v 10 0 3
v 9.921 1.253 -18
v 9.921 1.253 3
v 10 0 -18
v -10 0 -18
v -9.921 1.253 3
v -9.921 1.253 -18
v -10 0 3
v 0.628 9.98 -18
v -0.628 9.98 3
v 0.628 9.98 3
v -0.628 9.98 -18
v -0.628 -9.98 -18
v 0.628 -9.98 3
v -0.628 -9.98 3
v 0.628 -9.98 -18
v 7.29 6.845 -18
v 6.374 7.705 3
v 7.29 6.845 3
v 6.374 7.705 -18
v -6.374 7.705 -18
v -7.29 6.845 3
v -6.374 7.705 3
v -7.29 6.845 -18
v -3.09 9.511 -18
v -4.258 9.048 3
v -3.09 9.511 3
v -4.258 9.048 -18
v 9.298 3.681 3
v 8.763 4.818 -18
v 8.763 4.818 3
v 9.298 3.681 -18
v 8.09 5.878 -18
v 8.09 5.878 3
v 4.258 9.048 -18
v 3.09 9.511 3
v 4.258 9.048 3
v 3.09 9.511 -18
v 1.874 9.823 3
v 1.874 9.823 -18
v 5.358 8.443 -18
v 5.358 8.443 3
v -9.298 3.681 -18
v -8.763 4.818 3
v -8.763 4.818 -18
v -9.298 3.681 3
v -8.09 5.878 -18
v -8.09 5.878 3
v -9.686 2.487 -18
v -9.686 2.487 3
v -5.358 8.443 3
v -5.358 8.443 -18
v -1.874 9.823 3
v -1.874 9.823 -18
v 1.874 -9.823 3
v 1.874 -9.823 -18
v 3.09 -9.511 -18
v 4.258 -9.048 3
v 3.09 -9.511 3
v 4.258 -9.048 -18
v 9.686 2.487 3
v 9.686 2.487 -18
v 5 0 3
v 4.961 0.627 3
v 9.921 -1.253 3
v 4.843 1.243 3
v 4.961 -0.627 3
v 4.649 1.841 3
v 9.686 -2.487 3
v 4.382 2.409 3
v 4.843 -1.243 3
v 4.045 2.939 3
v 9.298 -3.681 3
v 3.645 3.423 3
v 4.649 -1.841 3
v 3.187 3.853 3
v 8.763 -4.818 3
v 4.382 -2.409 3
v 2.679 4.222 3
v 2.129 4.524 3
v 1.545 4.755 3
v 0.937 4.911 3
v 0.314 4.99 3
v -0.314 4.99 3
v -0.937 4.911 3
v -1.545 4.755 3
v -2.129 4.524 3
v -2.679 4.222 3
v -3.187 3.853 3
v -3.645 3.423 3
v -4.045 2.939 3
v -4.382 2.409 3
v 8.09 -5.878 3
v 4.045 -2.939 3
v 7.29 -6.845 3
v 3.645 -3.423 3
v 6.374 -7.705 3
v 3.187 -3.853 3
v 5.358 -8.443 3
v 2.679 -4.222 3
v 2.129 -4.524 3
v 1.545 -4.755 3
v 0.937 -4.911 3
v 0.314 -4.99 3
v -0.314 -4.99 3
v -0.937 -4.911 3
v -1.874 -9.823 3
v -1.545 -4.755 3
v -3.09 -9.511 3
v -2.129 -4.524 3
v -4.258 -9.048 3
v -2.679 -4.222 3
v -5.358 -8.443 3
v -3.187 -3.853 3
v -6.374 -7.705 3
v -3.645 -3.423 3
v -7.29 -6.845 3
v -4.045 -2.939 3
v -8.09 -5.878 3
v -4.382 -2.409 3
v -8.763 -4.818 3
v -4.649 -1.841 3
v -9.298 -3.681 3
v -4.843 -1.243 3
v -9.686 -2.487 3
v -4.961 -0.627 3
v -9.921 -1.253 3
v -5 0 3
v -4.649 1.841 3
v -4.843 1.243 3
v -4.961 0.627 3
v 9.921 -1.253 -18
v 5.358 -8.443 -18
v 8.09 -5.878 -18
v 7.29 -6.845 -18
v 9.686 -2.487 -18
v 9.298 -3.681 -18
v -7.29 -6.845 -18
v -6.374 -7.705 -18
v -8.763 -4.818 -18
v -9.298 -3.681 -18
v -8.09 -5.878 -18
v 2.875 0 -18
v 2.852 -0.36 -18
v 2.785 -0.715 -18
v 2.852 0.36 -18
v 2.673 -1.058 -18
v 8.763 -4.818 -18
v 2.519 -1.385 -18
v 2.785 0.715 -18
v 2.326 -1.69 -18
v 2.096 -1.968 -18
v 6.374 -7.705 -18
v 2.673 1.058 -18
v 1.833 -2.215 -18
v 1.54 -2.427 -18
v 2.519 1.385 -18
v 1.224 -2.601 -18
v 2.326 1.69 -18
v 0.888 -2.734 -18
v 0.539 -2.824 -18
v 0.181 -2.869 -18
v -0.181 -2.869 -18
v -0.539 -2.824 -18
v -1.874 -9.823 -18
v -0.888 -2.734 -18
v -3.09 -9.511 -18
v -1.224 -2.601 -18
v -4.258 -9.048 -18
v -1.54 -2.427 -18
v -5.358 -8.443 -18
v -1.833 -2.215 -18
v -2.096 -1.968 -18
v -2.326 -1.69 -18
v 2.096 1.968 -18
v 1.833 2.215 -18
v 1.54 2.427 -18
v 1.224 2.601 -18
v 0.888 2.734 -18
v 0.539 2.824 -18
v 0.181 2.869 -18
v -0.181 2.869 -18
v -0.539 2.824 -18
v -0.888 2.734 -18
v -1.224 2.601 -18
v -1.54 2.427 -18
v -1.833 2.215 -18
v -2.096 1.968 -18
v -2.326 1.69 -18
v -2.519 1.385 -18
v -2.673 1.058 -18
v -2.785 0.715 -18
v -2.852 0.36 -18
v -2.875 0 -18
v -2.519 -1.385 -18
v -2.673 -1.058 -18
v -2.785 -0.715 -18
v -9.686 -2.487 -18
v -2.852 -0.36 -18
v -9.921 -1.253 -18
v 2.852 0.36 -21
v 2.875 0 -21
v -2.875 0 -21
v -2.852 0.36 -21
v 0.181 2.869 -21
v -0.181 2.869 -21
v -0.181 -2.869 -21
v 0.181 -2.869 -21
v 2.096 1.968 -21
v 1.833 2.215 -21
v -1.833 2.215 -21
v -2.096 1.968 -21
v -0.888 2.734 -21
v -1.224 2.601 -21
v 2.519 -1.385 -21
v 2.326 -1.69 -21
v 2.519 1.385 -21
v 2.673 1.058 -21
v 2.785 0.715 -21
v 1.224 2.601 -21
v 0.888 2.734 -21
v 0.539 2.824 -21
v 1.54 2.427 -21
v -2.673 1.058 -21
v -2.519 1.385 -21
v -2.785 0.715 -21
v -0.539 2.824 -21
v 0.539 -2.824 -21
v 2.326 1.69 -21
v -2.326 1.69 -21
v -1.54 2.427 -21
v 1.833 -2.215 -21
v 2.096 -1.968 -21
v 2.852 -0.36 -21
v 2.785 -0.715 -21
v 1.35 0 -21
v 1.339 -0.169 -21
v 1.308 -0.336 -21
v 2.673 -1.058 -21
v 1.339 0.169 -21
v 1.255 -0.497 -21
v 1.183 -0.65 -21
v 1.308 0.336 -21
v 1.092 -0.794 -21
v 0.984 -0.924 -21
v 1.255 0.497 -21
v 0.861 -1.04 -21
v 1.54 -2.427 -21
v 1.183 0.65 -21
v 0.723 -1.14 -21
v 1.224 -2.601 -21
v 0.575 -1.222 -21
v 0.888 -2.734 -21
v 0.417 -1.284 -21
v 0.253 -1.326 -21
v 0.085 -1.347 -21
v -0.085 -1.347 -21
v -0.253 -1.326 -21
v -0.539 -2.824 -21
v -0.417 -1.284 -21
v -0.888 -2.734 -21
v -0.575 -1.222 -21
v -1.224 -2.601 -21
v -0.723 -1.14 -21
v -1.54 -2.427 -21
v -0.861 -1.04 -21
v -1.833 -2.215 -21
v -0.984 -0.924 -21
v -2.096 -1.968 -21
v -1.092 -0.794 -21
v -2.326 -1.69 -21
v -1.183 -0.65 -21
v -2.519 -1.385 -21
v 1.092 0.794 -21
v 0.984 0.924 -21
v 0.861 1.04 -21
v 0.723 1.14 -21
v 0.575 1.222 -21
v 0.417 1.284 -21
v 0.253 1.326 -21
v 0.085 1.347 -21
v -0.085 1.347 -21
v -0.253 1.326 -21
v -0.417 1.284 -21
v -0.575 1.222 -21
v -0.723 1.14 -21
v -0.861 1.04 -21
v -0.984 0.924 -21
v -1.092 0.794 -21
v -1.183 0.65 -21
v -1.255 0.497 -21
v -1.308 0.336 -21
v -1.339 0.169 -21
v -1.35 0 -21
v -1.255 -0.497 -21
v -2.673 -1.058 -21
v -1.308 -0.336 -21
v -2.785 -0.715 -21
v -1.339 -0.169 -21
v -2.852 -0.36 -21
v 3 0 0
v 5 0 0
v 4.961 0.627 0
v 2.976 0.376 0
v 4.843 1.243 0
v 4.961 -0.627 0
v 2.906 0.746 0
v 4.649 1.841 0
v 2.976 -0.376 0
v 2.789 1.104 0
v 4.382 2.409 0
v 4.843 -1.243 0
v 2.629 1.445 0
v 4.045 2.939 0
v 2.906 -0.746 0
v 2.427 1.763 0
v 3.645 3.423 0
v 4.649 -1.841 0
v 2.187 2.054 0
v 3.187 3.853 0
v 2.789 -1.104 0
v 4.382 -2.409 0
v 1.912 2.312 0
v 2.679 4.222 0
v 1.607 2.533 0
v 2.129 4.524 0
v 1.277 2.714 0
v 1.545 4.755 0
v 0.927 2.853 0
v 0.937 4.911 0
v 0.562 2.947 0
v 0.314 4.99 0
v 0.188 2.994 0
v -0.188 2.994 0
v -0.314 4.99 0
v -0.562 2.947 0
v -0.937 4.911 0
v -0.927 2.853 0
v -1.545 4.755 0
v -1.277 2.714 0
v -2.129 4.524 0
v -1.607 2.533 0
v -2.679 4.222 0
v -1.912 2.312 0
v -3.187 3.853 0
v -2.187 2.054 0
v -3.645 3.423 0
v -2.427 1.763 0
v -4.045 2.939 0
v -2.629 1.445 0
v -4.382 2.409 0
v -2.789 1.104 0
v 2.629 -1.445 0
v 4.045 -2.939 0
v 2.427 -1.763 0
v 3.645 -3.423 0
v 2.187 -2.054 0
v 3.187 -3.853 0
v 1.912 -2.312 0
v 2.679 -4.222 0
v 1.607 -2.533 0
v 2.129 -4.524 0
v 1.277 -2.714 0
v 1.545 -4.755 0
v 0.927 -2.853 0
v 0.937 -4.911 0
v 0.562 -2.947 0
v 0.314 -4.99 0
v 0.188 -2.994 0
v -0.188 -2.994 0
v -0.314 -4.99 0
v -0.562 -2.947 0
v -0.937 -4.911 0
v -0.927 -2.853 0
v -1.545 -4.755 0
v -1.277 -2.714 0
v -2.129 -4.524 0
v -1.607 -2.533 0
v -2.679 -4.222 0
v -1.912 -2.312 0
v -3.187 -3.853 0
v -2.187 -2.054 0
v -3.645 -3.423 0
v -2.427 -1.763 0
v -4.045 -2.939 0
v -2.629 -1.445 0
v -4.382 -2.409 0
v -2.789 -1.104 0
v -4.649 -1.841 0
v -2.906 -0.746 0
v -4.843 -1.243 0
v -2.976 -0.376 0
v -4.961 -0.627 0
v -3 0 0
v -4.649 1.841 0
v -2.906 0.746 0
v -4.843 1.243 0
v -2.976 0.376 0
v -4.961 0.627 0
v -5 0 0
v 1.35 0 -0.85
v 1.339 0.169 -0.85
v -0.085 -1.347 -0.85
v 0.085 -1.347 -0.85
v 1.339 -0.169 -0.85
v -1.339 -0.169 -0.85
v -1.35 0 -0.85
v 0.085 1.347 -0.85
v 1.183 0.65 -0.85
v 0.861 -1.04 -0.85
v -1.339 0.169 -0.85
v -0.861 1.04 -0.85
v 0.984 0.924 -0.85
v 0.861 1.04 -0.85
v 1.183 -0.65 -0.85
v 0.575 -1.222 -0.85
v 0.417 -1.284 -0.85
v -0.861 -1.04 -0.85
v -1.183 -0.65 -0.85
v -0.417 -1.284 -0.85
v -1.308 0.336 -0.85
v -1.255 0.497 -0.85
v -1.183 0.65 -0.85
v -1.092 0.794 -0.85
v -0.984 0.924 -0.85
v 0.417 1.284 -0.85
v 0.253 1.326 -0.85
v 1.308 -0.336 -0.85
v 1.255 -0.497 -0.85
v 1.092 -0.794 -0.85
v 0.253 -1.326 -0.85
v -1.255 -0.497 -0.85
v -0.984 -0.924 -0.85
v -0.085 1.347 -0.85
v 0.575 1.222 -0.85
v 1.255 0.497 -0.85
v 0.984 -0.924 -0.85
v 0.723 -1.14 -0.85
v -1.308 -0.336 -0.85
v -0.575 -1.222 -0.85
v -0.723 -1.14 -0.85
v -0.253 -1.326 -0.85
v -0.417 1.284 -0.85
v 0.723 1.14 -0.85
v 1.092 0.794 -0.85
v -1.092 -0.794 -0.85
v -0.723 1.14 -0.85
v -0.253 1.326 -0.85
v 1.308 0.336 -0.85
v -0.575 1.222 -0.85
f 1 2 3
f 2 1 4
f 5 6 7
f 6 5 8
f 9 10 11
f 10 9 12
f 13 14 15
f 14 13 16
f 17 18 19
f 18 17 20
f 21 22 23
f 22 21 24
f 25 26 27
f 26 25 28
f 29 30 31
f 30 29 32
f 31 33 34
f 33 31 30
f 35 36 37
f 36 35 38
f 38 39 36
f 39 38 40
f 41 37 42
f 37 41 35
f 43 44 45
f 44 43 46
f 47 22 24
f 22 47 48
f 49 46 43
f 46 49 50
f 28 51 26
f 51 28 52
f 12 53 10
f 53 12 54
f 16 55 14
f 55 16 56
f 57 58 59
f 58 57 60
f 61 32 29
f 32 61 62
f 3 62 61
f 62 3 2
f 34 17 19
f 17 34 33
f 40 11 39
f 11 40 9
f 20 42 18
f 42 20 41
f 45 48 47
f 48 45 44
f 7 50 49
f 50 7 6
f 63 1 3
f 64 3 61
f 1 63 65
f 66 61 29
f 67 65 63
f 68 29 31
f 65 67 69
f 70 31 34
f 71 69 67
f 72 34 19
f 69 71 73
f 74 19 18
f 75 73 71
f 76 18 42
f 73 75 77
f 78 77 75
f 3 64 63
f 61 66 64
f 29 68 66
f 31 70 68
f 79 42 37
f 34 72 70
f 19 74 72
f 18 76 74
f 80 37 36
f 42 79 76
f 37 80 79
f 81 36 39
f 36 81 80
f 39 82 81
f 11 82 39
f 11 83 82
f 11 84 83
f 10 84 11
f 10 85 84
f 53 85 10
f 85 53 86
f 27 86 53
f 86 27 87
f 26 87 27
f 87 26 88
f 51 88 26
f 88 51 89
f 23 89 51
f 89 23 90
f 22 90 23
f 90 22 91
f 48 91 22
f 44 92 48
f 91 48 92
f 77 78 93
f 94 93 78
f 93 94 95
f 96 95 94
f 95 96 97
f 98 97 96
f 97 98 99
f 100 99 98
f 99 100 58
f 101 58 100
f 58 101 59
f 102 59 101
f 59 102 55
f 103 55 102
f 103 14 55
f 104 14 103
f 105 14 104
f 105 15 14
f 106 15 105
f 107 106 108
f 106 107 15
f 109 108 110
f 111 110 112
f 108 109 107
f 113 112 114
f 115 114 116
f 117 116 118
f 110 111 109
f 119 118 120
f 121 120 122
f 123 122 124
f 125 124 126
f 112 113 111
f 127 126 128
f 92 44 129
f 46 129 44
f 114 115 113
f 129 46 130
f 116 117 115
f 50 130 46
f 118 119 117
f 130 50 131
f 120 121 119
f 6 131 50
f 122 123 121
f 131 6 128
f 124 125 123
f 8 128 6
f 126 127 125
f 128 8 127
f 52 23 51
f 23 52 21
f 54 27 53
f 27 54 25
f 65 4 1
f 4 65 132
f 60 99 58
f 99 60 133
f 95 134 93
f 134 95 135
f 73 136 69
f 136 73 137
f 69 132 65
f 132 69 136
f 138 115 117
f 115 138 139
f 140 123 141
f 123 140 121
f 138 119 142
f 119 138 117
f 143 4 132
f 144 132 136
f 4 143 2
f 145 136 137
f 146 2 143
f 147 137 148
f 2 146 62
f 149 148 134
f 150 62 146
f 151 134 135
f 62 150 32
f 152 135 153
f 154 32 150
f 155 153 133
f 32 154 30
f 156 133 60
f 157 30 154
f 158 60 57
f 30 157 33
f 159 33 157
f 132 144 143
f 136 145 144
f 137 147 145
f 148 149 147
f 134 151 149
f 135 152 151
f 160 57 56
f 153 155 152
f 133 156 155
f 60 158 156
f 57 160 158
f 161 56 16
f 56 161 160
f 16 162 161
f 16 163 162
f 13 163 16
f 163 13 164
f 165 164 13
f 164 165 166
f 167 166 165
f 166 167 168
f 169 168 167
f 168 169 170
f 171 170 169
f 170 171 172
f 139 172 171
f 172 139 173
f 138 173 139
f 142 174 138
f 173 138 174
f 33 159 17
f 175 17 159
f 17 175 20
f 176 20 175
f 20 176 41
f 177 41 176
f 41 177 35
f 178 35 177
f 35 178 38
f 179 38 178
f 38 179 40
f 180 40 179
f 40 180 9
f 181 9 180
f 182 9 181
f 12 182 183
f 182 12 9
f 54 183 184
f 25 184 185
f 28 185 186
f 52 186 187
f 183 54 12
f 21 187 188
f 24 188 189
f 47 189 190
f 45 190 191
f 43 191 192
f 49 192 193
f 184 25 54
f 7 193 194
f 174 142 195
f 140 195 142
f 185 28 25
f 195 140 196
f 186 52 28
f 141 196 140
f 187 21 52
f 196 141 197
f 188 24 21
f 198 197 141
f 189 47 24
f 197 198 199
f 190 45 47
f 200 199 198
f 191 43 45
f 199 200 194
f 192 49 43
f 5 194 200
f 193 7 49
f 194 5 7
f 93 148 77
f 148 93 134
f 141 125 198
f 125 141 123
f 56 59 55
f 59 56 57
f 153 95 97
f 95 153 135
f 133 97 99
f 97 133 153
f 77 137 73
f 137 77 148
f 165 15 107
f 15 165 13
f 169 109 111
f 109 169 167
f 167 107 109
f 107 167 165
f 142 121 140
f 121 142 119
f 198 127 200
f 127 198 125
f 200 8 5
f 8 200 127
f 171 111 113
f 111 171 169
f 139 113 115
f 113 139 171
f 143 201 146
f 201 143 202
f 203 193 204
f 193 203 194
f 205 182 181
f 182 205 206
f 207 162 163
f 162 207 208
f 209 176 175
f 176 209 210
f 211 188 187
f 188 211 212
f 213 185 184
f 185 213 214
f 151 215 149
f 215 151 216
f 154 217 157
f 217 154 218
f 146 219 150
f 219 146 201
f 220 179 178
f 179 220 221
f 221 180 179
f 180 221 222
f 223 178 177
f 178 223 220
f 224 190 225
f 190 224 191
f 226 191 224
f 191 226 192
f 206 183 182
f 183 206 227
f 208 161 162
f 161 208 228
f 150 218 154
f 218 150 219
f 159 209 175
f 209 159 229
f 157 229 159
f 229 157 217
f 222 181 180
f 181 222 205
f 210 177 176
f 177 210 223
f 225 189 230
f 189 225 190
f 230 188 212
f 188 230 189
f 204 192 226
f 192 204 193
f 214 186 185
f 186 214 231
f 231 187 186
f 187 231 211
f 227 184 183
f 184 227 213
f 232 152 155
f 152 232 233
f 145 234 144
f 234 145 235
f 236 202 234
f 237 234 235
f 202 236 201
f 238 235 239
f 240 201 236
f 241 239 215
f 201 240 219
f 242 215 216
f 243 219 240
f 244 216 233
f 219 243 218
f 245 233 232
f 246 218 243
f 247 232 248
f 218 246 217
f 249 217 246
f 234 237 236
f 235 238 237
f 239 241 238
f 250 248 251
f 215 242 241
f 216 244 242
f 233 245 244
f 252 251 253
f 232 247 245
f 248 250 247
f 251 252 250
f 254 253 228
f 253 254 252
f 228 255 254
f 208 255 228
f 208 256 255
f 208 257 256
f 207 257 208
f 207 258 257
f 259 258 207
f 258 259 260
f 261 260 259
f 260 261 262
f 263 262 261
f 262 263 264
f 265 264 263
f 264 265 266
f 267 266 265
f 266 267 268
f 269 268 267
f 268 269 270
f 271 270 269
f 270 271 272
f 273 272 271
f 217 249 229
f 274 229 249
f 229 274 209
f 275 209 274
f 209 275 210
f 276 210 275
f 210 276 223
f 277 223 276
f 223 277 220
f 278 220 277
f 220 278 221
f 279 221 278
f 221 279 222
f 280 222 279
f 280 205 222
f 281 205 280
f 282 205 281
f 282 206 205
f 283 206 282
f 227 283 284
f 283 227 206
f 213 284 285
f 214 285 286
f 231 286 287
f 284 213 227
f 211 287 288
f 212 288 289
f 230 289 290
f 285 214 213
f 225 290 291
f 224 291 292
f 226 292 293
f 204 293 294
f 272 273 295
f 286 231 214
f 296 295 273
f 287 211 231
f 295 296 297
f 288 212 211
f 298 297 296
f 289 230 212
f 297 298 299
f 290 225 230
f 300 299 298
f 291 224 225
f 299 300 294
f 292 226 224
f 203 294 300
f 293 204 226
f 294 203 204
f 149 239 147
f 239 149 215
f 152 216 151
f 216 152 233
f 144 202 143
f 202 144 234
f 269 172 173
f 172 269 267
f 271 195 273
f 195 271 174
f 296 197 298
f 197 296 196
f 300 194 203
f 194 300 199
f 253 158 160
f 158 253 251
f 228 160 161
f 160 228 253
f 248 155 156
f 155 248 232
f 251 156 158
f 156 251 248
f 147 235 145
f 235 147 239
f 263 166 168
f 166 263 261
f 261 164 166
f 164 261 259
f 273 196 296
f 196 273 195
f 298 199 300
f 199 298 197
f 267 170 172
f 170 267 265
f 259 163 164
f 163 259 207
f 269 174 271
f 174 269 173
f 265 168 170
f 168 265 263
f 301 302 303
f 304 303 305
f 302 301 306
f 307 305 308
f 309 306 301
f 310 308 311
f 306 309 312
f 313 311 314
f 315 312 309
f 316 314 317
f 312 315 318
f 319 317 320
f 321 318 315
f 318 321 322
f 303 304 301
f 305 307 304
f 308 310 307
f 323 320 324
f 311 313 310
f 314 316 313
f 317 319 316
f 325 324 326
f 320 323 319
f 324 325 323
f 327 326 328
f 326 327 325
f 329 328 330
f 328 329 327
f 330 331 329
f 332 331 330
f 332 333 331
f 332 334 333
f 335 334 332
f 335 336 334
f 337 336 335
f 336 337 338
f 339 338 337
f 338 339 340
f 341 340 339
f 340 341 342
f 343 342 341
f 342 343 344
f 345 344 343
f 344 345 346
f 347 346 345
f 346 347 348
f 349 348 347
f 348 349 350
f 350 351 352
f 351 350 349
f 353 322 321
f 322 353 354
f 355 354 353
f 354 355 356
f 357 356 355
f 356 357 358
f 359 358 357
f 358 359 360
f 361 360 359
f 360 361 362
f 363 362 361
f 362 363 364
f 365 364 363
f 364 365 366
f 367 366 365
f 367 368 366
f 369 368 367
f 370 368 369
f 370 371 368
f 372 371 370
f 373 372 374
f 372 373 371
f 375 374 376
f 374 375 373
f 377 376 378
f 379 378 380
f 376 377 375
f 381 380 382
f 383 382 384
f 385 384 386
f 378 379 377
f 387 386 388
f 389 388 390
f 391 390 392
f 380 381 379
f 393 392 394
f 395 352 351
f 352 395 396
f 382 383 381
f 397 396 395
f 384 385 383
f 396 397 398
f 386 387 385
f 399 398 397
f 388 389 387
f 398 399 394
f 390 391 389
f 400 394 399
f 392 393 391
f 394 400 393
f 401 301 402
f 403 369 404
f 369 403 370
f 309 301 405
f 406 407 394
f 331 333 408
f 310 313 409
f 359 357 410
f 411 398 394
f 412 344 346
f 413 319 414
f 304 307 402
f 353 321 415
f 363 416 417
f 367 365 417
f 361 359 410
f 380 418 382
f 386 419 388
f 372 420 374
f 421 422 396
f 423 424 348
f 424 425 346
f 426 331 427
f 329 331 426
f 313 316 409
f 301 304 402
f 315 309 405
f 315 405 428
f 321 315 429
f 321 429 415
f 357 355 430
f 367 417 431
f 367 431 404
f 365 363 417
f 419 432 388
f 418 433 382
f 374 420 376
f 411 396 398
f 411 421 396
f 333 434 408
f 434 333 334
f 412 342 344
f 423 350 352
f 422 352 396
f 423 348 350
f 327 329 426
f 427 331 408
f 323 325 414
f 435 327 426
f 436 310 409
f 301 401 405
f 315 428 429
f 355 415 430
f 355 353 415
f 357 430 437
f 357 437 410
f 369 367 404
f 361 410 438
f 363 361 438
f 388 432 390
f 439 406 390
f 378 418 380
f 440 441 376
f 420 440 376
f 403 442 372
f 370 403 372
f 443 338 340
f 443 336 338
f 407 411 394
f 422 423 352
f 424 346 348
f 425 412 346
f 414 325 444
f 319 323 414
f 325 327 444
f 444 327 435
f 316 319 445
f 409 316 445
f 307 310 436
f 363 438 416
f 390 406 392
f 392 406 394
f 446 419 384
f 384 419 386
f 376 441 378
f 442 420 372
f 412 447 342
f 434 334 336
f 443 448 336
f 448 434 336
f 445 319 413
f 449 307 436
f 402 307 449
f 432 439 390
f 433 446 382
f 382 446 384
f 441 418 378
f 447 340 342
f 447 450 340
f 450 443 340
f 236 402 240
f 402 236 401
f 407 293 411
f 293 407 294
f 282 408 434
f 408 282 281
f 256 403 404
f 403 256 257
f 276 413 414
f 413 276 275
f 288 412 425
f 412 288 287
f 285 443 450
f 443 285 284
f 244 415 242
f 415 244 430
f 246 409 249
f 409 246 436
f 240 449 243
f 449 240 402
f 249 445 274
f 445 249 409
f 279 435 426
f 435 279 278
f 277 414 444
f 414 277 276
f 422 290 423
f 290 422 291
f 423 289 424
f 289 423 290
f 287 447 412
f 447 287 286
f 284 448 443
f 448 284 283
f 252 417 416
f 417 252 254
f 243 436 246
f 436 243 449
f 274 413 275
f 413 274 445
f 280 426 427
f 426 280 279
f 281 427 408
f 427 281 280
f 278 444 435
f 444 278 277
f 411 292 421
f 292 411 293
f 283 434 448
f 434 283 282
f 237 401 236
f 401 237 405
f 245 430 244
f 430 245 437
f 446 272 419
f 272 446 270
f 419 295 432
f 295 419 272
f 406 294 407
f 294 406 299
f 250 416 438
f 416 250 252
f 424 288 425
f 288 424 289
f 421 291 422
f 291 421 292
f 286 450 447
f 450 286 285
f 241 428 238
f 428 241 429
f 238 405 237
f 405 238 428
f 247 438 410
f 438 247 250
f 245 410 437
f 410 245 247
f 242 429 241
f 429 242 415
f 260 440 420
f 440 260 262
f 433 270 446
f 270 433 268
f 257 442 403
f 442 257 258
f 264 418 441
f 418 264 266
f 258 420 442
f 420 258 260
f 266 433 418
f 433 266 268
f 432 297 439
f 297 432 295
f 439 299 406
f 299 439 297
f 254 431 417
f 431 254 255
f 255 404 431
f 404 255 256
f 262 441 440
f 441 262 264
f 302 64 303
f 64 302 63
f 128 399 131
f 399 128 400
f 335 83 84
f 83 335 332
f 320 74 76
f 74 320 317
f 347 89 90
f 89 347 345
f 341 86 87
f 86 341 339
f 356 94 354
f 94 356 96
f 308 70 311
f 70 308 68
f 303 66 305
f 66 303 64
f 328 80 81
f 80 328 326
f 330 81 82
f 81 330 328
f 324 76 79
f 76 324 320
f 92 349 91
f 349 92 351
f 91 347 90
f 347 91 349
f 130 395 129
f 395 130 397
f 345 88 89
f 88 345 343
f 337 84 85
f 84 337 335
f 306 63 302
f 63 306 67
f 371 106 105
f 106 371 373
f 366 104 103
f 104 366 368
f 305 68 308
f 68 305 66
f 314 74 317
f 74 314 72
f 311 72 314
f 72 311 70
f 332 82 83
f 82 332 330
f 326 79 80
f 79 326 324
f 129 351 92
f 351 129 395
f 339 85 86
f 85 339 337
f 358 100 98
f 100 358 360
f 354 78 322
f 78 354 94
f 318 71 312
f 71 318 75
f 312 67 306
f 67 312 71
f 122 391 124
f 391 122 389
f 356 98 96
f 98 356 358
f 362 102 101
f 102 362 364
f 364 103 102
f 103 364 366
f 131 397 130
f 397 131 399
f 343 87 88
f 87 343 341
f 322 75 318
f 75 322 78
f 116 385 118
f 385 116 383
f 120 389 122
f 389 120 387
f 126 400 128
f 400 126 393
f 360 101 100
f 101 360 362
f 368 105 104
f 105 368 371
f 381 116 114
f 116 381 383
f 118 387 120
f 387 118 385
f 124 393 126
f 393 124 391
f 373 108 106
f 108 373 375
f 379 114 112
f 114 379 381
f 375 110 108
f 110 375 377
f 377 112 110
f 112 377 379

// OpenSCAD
$fn = 50;


difference() {
	union() {
		translate(v = [0, 0, -18.0000000000]) {
			cylinder(h = 21, r = 10.0000000000);
		}
		#translate(v = [0, 0, -21.0000000000]) {
			cylinder(h = 21, r = 2.8750000000);
		}
	}
	union() {
		translate(v = [0, 0, 0]) {
			rotate(a = [0, 0, 0]) {
				difference() {
					union() {
						translate(v = [0, 0, -21.0000000000]) {
							cylinder(h = 21, r = 1.0000000000);
						}
						translate(v = [0, 0, -0.8500000000]) {
							cylinder(h = 0.8500000000, r1 = 1.3500000000, r2 = 3.0000000000);
						}
						translate(v = [0, 0, -21.0000000000]) {
							cylinder(h = 21, r = 1.3500000000);
						}
						translate(v = [0, 0, -21.0000000000]) {
							cylinder(h = 21, r = 1.0000000000);
						}
					}
					union();
				}
			}
		}
		#cylinder(h = 3, r = 5.0000000000);
	}
}
